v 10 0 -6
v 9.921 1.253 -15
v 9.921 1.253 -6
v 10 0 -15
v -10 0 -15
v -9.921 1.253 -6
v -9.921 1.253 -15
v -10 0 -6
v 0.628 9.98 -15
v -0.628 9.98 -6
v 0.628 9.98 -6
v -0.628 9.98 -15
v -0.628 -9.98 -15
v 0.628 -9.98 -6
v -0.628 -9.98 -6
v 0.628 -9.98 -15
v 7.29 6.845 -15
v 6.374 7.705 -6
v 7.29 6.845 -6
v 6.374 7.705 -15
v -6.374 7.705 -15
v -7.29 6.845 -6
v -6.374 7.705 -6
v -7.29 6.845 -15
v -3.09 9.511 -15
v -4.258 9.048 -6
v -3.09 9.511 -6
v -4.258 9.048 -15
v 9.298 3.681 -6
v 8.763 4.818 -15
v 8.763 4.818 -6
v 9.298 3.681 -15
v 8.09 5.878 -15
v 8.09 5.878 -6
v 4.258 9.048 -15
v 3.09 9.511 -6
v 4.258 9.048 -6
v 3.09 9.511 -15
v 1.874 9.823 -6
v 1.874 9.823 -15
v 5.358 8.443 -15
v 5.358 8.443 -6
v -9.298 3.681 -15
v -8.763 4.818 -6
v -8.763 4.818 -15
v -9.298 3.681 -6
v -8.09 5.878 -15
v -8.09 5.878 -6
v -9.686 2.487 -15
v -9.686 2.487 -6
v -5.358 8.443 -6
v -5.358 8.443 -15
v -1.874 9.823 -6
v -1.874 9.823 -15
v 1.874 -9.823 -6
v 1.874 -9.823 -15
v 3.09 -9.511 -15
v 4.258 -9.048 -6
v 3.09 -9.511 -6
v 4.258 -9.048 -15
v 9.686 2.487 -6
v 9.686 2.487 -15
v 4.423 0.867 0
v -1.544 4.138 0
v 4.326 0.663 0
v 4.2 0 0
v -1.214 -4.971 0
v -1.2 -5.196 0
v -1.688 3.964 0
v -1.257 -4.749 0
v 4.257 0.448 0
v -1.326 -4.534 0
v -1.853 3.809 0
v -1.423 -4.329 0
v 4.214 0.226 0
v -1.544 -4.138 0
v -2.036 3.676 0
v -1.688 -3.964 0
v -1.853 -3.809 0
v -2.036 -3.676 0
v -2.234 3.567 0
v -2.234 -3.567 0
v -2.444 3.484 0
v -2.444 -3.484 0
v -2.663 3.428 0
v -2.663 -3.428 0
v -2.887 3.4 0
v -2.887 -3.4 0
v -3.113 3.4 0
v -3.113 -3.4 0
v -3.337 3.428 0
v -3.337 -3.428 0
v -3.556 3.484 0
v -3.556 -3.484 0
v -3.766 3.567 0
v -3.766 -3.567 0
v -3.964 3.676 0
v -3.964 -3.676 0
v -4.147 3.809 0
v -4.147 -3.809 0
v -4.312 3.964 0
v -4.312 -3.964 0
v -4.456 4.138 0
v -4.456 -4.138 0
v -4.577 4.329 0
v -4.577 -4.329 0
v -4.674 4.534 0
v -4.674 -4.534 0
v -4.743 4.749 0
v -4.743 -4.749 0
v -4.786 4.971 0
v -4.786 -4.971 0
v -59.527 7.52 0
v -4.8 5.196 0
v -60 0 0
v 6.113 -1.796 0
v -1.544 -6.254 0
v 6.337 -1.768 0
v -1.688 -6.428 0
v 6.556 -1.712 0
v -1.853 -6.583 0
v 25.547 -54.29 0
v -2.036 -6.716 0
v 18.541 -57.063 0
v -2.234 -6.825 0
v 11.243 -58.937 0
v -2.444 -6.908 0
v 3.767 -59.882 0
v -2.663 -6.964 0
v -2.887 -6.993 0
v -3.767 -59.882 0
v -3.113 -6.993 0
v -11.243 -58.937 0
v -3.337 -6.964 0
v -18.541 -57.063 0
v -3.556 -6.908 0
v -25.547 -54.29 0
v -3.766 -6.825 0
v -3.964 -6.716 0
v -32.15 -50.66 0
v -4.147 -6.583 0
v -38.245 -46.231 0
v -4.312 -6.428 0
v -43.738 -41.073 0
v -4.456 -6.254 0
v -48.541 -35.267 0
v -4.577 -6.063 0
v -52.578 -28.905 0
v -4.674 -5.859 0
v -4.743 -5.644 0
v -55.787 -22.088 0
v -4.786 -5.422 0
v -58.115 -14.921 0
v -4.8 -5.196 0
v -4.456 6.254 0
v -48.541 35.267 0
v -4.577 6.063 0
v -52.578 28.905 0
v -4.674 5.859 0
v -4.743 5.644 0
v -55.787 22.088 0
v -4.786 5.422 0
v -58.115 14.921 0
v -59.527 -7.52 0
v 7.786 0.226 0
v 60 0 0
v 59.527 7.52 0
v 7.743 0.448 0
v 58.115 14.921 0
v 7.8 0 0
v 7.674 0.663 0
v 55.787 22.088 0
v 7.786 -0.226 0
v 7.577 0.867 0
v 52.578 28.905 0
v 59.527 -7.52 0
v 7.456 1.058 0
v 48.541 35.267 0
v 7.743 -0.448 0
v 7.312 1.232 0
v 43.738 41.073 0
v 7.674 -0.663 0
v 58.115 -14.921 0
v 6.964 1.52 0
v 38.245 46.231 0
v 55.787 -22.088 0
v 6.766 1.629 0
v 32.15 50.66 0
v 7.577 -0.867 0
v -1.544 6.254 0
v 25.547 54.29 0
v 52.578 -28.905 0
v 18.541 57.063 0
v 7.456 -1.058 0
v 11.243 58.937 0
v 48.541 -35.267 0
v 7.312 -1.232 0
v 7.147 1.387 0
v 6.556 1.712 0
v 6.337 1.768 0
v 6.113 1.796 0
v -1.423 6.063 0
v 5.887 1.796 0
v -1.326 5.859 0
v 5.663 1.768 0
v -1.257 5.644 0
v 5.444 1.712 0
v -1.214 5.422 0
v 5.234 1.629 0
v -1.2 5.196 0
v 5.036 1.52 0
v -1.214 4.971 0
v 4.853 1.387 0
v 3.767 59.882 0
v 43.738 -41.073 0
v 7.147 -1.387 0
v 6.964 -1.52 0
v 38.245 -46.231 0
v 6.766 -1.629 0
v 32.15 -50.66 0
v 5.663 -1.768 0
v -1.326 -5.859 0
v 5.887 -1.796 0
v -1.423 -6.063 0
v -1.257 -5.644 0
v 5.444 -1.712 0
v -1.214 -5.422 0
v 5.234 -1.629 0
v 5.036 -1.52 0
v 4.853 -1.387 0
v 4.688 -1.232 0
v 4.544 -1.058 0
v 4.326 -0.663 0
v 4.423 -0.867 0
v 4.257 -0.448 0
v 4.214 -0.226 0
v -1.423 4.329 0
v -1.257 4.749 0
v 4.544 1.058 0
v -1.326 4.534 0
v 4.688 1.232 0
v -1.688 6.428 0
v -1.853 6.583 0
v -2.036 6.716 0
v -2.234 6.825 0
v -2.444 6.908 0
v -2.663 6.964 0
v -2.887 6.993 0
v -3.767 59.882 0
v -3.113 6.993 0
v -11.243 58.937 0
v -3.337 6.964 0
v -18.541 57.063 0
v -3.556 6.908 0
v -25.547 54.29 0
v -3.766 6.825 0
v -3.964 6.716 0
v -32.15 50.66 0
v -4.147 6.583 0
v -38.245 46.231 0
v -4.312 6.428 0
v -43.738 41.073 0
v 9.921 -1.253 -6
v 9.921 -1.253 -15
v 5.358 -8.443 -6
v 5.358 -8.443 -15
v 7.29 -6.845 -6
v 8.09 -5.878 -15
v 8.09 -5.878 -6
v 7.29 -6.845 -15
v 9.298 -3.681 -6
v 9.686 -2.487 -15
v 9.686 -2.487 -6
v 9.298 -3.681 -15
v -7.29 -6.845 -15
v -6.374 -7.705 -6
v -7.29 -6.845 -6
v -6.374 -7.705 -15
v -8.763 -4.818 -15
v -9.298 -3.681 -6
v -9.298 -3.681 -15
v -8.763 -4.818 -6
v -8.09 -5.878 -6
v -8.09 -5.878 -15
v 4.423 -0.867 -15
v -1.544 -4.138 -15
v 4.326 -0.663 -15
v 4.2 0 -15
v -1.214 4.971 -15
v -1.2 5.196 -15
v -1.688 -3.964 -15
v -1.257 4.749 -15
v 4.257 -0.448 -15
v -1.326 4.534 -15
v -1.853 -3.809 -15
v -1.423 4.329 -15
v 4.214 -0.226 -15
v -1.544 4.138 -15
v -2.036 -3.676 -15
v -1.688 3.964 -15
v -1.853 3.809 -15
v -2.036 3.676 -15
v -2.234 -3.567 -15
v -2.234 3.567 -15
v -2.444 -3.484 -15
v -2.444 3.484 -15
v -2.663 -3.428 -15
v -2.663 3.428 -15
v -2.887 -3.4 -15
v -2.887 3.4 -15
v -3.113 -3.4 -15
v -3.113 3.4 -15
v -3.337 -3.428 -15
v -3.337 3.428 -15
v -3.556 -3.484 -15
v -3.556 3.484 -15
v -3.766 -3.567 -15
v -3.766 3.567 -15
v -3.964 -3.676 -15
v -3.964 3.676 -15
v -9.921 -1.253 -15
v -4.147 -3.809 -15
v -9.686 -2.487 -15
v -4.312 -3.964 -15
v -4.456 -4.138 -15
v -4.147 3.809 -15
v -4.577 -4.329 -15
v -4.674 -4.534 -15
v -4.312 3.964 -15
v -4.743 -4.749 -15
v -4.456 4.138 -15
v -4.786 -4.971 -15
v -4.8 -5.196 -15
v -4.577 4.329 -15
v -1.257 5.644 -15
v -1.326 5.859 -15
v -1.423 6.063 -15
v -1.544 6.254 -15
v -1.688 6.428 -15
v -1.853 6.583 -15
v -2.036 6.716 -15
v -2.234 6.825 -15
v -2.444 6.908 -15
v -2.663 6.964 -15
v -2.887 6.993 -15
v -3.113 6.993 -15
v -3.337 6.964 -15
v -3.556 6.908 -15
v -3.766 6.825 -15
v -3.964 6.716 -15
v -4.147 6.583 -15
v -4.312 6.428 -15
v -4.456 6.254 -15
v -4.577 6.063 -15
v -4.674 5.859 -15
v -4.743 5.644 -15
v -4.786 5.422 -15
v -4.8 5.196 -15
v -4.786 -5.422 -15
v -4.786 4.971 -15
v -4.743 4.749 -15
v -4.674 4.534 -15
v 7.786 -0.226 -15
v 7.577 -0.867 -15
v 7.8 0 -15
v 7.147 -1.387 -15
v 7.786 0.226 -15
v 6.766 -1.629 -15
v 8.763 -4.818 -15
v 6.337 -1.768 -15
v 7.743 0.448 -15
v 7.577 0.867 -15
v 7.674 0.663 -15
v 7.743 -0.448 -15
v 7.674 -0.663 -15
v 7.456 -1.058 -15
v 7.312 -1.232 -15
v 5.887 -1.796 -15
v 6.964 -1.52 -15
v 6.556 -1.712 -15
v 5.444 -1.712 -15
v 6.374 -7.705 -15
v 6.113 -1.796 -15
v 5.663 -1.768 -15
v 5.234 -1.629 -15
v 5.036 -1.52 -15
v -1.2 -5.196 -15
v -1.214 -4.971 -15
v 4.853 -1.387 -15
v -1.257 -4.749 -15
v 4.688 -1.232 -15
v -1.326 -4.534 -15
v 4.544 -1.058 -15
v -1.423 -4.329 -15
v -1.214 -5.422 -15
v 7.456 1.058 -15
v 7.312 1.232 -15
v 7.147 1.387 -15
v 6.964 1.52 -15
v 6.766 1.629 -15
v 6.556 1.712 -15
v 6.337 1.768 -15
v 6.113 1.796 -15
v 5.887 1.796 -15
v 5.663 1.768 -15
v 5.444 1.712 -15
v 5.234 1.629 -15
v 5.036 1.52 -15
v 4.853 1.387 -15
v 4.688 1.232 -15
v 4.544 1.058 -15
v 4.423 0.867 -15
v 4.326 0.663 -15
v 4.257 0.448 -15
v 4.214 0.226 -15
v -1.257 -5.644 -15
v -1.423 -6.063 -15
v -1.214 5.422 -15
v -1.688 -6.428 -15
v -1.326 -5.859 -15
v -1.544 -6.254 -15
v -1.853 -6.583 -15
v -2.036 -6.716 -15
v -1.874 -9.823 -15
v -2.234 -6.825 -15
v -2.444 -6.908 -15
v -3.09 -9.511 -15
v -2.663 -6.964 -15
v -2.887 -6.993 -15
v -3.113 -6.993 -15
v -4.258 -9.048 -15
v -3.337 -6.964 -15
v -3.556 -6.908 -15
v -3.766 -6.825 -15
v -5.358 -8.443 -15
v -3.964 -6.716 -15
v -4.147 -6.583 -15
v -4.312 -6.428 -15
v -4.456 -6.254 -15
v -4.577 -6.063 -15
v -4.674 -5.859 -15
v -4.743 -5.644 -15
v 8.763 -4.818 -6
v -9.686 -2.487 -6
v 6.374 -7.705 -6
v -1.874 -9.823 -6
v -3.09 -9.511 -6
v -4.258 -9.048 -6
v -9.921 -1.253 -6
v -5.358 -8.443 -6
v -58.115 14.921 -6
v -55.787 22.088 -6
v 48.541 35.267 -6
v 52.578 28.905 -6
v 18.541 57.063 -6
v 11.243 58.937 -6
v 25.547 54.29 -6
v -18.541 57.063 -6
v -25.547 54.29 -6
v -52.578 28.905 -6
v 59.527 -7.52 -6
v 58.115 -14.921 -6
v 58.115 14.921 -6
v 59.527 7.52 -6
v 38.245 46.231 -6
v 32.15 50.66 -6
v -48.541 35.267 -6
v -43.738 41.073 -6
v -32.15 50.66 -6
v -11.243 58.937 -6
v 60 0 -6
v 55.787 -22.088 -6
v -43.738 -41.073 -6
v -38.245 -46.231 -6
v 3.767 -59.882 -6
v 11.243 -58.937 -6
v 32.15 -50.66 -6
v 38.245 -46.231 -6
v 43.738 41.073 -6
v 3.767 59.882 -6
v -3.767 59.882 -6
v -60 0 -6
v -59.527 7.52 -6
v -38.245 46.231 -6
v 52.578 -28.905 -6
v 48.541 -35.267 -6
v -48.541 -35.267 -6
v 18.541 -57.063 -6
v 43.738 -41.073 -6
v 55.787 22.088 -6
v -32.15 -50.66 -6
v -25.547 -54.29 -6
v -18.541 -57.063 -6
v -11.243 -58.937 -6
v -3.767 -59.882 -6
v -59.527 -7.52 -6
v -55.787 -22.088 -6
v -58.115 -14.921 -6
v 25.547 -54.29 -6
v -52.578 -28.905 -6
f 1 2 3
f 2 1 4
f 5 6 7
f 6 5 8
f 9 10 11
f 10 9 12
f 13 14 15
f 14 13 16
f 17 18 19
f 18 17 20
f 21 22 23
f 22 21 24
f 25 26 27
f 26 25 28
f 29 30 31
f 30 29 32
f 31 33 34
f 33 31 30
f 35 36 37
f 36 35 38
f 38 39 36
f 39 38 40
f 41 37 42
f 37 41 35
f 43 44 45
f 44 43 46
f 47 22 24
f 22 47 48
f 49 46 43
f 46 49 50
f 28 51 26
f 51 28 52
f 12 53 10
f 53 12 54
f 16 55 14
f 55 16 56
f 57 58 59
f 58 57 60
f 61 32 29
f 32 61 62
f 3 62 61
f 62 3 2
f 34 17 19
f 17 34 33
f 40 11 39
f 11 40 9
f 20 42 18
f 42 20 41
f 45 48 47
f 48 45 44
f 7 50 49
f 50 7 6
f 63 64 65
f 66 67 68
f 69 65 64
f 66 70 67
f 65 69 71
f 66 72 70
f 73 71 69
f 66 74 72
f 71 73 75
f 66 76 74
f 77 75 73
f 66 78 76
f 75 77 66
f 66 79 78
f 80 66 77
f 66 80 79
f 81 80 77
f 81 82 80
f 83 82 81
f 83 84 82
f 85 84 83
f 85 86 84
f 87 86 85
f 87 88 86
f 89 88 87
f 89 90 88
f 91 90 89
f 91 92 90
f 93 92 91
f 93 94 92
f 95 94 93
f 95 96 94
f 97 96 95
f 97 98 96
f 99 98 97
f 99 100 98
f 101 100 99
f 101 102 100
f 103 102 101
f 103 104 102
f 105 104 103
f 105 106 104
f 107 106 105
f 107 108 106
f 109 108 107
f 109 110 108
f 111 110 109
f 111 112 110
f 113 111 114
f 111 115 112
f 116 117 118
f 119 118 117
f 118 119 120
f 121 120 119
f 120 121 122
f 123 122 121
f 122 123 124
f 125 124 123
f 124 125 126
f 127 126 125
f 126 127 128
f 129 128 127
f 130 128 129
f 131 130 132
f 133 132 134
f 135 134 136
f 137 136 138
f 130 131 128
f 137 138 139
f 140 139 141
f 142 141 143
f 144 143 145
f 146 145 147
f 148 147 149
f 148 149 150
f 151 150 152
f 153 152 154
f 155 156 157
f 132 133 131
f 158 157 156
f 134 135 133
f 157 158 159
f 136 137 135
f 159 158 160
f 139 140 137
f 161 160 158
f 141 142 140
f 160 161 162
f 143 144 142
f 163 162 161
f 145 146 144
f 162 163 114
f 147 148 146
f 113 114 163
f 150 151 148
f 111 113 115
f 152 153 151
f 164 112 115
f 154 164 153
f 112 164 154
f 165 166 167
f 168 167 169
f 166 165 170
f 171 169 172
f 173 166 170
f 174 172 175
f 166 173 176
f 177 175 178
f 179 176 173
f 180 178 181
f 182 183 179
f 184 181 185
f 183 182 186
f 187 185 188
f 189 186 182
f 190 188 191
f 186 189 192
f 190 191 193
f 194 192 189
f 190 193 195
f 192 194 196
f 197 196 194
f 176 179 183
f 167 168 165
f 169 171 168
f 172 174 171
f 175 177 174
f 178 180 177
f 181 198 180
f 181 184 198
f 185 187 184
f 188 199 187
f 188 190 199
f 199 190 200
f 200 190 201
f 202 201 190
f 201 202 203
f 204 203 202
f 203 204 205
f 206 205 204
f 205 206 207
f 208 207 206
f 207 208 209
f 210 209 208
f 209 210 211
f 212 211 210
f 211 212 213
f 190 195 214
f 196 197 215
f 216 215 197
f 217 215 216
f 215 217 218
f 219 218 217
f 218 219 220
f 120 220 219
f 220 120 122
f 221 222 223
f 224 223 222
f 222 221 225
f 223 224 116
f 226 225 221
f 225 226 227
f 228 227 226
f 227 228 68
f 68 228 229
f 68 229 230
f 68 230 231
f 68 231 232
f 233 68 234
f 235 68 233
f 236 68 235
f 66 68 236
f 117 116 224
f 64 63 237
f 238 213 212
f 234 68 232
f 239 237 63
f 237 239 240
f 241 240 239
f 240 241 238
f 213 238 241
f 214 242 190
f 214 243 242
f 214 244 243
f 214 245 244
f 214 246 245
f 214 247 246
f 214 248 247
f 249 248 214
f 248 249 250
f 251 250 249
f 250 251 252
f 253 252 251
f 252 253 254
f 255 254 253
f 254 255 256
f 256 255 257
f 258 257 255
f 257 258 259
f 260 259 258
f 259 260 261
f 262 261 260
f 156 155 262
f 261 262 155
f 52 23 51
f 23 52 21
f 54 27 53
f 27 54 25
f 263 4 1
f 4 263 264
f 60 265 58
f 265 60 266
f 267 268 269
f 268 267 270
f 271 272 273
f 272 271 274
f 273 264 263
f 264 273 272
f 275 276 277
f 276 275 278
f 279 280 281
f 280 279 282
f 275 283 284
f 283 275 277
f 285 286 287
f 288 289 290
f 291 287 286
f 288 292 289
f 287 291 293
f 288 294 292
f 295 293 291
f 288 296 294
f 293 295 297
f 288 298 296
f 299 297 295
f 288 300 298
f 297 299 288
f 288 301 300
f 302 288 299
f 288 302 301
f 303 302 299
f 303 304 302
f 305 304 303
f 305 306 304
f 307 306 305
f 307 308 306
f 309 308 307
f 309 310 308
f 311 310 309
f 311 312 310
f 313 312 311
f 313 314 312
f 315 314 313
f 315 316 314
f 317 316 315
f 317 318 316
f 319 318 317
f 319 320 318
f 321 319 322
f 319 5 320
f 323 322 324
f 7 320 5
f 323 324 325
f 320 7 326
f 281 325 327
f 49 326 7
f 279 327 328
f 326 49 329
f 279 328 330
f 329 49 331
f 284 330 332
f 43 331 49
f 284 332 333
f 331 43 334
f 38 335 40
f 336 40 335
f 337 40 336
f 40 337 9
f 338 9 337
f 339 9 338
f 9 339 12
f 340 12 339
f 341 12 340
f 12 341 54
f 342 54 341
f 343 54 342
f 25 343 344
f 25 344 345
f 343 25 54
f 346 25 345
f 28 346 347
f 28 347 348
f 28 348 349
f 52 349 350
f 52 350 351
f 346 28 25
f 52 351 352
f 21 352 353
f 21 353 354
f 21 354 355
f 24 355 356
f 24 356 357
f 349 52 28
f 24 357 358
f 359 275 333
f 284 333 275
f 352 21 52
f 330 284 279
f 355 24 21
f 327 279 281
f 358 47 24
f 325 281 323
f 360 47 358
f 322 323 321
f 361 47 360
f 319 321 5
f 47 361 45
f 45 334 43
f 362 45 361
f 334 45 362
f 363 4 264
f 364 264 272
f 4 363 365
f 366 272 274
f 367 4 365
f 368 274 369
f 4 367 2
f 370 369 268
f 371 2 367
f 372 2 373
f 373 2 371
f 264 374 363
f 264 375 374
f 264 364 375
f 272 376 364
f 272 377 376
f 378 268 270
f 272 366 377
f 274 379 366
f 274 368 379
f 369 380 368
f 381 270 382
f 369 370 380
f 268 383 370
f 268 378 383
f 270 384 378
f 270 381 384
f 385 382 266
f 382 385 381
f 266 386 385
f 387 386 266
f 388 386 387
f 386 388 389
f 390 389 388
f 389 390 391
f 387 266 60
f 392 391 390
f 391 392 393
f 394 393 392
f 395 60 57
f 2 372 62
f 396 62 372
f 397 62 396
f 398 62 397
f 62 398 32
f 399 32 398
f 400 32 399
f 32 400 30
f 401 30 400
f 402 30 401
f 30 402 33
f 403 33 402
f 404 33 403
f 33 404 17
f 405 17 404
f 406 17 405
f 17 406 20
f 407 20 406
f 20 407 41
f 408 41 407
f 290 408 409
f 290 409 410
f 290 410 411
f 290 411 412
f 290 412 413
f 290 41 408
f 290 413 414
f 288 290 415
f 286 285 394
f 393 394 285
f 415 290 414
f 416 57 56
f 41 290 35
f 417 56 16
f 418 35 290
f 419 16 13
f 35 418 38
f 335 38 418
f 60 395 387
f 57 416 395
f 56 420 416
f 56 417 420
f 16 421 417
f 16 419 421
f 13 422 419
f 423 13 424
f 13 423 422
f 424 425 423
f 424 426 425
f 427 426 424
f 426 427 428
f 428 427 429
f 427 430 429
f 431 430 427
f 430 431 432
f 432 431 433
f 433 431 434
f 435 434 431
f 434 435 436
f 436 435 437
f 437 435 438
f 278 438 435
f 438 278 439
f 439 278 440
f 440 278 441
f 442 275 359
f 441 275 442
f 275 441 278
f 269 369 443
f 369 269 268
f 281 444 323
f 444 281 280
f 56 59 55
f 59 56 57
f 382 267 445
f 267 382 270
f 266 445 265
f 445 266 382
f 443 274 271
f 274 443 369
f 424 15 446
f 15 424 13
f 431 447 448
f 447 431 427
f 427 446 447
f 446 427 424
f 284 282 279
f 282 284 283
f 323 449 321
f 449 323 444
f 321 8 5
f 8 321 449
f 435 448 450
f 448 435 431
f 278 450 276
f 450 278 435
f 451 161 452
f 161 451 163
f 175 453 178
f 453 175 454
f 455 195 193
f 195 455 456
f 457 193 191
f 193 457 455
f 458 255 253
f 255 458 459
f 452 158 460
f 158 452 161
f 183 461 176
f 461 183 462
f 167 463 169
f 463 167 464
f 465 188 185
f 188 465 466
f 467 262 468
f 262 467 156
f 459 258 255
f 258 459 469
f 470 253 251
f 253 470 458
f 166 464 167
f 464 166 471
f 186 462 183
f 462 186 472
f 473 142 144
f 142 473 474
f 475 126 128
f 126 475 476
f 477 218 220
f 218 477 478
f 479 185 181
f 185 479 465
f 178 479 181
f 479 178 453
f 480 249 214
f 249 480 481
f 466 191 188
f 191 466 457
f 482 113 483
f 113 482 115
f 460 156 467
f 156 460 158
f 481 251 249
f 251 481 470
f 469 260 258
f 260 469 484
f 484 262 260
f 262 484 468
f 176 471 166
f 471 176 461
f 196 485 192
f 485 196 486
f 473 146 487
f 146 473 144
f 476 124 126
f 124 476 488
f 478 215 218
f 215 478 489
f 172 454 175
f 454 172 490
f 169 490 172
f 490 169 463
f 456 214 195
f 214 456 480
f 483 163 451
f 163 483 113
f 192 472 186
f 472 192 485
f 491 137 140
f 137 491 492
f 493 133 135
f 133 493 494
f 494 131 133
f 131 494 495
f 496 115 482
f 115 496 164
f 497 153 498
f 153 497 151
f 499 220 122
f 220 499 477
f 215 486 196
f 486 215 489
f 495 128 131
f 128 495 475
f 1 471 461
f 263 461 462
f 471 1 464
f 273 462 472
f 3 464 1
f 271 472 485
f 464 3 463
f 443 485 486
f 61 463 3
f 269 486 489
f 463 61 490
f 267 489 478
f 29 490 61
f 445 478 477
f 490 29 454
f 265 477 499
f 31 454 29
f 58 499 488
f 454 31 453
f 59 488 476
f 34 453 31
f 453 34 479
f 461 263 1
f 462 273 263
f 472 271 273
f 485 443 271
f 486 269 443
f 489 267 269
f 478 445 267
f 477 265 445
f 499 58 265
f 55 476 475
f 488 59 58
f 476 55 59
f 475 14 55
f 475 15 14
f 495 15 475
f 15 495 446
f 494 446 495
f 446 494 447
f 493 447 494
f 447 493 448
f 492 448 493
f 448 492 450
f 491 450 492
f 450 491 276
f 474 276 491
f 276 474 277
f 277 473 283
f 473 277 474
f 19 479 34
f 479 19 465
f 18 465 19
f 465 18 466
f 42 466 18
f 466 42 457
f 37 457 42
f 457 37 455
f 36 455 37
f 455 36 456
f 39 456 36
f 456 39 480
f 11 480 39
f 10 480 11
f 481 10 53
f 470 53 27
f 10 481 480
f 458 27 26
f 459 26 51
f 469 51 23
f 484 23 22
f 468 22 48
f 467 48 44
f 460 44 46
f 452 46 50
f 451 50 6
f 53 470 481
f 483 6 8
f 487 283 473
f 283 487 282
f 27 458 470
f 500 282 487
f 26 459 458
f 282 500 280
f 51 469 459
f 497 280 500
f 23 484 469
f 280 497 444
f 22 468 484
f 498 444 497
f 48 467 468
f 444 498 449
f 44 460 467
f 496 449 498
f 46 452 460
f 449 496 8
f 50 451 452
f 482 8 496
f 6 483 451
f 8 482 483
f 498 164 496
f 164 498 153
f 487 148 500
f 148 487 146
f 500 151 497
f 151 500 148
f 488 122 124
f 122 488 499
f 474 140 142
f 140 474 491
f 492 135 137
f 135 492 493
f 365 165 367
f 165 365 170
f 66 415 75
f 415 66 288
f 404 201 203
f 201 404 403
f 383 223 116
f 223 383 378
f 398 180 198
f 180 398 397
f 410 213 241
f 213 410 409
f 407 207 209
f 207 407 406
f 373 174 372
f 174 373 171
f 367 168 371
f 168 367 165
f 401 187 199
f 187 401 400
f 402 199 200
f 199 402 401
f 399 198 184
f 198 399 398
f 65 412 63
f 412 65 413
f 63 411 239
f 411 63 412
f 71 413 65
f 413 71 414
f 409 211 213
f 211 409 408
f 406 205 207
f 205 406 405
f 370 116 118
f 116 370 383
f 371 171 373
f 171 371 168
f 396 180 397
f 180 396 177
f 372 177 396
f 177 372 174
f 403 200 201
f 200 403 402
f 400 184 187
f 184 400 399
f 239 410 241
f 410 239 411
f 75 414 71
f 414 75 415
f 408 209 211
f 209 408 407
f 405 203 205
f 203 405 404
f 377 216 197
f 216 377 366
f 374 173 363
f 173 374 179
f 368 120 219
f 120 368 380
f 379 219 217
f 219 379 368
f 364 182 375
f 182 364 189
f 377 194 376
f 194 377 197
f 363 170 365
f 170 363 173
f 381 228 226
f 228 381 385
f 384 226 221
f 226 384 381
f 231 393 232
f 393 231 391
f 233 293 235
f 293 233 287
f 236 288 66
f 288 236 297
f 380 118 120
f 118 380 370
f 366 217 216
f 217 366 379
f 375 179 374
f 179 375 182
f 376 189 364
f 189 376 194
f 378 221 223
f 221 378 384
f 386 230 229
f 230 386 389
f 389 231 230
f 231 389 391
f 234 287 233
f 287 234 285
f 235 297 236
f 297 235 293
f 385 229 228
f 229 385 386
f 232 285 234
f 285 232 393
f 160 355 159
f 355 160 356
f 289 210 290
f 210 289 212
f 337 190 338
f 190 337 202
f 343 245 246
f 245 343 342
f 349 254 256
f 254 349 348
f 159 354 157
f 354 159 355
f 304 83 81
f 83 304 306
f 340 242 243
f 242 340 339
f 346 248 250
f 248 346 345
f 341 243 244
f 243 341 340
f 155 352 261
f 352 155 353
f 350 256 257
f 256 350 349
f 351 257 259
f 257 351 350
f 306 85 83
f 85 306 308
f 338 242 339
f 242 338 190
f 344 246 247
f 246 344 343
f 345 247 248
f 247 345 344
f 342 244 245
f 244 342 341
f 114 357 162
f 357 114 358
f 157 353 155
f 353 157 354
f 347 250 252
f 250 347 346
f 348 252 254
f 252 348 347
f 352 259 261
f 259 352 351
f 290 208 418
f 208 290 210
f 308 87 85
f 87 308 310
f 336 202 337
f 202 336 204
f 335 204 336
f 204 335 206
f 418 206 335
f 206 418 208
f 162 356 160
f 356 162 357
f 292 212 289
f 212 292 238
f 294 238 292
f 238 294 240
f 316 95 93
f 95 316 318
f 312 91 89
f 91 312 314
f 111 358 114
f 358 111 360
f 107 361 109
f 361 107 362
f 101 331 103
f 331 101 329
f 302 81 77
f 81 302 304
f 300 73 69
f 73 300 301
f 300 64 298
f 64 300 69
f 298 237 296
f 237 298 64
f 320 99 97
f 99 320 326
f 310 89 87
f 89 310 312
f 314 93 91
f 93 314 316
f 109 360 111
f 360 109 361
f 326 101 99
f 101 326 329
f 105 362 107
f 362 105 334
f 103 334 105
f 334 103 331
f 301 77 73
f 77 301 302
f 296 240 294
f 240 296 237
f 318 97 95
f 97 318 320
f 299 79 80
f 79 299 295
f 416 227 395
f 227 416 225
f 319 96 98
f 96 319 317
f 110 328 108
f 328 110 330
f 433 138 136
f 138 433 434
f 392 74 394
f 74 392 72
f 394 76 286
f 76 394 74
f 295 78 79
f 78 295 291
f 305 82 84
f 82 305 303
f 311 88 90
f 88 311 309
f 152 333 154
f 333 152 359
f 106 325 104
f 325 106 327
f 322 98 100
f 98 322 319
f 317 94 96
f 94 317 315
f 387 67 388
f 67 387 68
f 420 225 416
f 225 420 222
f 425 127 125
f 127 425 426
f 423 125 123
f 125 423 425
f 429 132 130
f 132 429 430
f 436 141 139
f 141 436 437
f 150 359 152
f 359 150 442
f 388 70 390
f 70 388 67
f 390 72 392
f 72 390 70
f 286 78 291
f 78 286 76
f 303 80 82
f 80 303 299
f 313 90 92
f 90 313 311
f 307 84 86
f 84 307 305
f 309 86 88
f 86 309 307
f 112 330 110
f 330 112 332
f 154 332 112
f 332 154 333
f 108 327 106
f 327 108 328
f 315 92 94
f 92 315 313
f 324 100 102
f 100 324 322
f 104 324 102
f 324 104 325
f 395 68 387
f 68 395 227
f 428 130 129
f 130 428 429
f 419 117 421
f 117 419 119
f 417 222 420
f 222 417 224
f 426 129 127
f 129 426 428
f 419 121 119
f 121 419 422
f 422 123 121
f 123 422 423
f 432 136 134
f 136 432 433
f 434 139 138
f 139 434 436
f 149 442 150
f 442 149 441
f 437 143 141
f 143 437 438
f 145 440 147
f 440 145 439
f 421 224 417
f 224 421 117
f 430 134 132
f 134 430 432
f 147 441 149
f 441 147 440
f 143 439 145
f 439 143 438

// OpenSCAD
$fn = 50;


difference() {
	union() {
		translate(v = [0, 0, -15.0000000000]) {
			cylinder(h = 15, r = 10.0000000000);
		}
		translate(v = [0, 0, -6.0000000000]) {
			cylinder(h = 6, r = 60.0000000000);
		}
	}
	union() {
		#translate(v = [6.0000000000, 0.0000000000, -15]) {
			cylinder(h = 15, r = 1.8000000000);
		}
		#translate(v = [-3.0000000000, 5.1961524227, -15]) {
			cylinder(h = 15, r = 1.8000000000);
		}
		#translate(v = [-3.0000000000, -5.1961524227, -15]) {
			cylinder(h = 15, r = 1.8000000000);
		}
	}
}
